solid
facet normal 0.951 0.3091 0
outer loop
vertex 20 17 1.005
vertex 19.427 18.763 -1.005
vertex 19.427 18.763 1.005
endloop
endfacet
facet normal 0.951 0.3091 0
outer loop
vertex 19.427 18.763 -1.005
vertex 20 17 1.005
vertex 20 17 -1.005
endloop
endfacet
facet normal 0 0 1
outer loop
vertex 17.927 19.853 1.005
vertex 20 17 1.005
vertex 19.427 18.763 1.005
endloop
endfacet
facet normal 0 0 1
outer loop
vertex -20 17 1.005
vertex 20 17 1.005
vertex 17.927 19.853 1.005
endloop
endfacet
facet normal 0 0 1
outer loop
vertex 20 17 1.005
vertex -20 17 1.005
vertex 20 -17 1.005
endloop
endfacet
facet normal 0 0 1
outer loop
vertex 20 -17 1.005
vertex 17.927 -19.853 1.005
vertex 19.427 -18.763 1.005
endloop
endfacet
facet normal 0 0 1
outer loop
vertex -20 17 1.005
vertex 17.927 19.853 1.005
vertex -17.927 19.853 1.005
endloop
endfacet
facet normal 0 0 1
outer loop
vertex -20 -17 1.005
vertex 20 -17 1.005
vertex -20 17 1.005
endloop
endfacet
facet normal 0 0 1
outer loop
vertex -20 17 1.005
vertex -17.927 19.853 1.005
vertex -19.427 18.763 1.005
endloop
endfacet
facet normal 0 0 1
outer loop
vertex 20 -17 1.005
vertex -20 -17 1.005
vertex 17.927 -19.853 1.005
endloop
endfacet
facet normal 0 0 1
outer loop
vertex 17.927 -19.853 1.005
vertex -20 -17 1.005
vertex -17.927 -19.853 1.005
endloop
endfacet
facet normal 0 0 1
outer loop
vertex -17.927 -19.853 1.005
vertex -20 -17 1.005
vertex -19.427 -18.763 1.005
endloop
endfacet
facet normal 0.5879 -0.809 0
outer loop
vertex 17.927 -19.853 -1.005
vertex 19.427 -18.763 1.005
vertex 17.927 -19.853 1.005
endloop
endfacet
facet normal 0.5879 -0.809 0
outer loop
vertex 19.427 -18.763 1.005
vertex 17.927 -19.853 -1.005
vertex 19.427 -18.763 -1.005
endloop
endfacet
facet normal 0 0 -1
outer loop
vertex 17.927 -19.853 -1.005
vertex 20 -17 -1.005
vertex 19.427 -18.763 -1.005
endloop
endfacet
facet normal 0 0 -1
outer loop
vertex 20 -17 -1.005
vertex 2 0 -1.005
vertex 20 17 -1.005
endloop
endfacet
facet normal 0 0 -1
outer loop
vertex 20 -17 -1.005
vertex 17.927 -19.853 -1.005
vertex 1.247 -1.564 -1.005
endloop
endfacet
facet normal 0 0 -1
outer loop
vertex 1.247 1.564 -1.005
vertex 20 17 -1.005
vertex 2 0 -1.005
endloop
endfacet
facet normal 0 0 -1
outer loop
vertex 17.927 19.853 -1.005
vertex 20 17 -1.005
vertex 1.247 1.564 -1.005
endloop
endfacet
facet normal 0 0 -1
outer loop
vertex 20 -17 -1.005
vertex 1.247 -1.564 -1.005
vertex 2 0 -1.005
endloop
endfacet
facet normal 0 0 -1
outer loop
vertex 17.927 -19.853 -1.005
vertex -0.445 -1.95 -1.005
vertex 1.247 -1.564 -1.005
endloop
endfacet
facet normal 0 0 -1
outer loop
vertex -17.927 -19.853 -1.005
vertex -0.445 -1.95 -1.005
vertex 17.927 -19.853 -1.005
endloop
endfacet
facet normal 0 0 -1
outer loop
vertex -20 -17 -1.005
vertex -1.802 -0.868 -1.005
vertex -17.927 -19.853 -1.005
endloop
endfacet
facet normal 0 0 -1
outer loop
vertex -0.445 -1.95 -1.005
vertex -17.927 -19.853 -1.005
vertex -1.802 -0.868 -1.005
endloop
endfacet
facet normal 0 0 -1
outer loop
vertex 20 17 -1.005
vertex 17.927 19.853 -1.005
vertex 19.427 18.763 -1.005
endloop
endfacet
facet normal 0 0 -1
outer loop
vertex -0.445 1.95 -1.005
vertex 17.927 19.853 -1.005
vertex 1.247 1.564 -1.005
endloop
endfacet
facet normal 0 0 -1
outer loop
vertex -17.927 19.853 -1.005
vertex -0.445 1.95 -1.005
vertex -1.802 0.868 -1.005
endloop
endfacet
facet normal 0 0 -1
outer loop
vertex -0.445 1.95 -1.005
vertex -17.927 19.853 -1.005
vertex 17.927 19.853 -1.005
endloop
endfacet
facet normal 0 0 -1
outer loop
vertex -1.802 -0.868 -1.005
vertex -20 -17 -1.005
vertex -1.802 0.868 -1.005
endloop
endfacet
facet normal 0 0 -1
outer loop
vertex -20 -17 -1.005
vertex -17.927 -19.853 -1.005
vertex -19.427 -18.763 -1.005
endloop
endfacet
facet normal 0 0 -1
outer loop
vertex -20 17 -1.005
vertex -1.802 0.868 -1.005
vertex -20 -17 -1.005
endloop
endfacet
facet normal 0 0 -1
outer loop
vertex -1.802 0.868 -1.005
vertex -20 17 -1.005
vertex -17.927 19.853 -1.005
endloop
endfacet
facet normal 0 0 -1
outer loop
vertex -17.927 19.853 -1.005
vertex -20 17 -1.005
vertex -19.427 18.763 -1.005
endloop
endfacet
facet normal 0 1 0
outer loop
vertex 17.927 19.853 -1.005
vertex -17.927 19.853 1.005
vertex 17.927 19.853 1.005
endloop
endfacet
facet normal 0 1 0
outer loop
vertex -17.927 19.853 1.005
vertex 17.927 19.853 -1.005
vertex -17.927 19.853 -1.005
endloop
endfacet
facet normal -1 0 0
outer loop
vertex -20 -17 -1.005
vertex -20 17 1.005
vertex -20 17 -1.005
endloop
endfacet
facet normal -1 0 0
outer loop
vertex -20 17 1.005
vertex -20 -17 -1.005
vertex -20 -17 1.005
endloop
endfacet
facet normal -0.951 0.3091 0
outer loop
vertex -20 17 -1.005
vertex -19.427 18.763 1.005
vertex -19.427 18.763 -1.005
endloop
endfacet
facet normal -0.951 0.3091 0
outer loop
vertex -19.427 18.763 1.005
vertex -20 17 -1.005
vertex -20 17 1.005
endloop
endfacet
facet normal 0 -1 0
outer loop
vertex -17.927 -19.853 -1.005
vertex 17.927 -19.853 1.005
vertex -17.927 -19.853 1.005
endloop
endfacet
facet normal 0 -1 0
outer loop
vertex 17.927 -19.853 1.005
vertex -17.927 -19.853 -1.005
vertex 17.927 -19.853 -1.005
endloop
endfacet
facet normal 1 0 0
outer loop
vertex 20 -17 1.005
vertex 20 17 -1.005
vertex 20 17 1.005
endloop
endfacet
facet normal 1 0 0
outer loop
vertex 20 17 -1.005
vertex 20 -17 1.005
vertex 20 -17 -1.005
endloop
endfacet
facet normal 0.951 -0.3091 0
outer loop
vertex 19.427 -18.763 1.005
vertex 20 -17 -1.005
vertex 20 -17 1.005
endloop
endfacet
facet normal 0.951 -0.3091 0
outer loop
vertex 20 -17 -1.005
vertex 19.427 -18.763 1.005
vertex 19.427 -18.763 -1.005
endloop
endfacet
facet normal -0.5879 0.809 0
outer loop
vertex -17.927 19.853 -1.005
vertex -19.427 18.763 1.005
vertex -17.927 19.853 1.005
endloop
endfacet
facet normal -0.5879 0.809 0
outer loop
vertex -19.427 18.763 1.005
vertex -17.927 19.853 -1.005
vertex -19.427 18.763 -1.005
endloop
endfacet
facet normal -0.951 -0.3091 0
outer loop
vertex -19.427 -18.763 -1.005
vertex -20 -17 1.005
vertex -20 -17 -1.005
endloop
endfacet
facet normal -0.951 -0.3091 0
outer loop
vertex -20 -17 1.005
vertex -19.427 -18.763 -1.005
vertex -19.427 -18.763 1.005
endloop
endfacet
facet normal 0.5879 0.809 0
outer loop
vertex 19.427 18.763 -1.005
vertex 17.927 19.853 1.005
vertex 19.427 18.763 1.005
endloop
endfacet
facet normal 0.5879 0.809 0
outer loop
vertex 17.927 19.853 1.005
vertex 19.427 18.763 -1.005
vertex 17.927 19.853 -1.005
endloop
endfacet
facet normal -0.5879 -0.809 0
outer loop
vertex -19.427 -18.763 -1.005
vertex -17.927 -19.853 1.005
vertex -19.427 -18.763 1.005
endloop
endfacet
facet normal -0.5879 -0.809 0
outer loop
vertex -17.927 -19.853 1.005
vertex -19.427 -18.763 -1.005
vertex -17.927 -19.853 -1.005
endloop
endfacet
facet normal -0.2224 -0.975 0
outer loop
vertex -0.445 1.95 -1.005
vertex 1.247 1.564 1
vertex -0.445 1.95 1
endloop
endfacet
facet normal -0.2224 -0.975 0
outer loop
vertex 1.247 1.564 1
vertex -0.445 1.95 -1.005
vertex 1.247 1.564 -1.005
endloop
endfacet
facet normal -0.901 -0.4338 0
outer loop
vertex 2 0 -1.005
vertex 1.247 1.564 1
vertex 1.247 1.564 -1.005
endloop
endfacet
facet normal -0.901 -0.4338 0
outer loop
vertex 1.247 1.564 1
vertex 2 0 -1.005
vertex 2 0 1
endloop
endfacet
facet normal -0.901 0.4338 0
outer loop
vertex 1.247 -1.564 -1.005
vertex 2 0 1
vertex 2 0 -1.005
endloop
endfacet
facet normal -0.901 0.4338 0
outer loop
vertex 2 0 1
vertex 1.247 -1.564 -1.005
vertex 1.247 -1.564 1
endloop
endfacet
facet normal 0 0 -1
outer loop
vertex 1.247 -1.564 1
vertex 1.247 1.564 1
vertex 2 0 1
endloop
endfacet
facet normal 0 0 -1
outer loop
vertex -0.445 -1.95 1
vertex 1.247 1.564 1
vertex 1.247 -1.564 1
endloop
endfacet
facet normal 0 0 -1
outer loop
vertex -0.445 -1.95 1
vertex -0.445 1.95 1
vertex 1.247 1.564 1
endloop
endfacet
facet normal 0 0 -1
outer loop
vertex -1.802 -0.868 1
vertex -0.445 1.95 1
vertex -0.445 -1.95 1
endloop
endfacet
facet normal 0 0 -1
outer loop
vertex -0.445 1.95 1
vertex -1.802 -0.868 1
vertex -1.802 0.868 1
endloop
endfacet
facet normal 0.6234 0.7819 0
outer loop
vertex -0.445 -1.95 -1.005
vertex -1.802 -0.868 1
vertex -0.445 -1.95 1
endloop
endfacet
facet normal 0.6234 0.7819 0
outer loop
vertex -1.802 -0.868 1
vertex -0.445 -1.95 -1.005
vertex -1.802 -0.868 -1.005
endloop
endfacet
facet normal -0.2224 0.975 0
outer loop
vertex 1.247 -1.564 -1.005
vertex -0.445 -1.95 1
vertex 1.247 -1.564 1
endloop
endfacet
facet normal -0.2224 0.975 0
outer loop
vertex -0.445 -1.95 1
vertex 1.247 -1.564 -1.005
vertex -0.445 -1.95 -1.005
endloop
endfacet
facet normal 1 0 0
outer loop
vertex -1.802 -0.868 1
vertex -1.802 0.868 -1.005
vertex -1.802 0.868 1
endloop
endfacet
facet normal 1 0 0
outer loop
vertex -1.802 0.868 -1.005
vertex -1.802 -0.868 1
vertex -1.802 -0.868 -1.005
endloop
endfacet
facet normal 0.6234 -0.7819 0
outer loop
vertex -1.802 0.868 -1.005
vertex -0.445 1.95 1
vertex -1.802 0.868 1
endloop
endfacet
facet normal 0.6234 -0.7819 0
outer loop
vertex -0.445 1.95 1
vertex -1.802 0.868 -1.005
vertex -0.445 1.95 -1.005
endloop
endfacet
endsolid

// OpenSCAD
// Parameters
plate_size = 40;
plate_thickness = 2;
corner_radius = 3;
hole_diameter = 4;

// Module for rounded square
module rounded_square_plate(size, thickness, radius, hole_d) {
    difference() {
        // Rounded square base
        minkowski() {
            cube([size - 2*radius, size - 2*radius, thickness], center=true);
            cylinder(r=radius, h=0.01, center=true);
        }
        // Central hole
        translate([0, 0, -thickness])
            cylinder(h=3*thickness, d=hole_d, center=true);
    }
}

// Render the plate
rounded_square_plate(plate_size, plate_thickness, corner_radius, hole_diameter);
